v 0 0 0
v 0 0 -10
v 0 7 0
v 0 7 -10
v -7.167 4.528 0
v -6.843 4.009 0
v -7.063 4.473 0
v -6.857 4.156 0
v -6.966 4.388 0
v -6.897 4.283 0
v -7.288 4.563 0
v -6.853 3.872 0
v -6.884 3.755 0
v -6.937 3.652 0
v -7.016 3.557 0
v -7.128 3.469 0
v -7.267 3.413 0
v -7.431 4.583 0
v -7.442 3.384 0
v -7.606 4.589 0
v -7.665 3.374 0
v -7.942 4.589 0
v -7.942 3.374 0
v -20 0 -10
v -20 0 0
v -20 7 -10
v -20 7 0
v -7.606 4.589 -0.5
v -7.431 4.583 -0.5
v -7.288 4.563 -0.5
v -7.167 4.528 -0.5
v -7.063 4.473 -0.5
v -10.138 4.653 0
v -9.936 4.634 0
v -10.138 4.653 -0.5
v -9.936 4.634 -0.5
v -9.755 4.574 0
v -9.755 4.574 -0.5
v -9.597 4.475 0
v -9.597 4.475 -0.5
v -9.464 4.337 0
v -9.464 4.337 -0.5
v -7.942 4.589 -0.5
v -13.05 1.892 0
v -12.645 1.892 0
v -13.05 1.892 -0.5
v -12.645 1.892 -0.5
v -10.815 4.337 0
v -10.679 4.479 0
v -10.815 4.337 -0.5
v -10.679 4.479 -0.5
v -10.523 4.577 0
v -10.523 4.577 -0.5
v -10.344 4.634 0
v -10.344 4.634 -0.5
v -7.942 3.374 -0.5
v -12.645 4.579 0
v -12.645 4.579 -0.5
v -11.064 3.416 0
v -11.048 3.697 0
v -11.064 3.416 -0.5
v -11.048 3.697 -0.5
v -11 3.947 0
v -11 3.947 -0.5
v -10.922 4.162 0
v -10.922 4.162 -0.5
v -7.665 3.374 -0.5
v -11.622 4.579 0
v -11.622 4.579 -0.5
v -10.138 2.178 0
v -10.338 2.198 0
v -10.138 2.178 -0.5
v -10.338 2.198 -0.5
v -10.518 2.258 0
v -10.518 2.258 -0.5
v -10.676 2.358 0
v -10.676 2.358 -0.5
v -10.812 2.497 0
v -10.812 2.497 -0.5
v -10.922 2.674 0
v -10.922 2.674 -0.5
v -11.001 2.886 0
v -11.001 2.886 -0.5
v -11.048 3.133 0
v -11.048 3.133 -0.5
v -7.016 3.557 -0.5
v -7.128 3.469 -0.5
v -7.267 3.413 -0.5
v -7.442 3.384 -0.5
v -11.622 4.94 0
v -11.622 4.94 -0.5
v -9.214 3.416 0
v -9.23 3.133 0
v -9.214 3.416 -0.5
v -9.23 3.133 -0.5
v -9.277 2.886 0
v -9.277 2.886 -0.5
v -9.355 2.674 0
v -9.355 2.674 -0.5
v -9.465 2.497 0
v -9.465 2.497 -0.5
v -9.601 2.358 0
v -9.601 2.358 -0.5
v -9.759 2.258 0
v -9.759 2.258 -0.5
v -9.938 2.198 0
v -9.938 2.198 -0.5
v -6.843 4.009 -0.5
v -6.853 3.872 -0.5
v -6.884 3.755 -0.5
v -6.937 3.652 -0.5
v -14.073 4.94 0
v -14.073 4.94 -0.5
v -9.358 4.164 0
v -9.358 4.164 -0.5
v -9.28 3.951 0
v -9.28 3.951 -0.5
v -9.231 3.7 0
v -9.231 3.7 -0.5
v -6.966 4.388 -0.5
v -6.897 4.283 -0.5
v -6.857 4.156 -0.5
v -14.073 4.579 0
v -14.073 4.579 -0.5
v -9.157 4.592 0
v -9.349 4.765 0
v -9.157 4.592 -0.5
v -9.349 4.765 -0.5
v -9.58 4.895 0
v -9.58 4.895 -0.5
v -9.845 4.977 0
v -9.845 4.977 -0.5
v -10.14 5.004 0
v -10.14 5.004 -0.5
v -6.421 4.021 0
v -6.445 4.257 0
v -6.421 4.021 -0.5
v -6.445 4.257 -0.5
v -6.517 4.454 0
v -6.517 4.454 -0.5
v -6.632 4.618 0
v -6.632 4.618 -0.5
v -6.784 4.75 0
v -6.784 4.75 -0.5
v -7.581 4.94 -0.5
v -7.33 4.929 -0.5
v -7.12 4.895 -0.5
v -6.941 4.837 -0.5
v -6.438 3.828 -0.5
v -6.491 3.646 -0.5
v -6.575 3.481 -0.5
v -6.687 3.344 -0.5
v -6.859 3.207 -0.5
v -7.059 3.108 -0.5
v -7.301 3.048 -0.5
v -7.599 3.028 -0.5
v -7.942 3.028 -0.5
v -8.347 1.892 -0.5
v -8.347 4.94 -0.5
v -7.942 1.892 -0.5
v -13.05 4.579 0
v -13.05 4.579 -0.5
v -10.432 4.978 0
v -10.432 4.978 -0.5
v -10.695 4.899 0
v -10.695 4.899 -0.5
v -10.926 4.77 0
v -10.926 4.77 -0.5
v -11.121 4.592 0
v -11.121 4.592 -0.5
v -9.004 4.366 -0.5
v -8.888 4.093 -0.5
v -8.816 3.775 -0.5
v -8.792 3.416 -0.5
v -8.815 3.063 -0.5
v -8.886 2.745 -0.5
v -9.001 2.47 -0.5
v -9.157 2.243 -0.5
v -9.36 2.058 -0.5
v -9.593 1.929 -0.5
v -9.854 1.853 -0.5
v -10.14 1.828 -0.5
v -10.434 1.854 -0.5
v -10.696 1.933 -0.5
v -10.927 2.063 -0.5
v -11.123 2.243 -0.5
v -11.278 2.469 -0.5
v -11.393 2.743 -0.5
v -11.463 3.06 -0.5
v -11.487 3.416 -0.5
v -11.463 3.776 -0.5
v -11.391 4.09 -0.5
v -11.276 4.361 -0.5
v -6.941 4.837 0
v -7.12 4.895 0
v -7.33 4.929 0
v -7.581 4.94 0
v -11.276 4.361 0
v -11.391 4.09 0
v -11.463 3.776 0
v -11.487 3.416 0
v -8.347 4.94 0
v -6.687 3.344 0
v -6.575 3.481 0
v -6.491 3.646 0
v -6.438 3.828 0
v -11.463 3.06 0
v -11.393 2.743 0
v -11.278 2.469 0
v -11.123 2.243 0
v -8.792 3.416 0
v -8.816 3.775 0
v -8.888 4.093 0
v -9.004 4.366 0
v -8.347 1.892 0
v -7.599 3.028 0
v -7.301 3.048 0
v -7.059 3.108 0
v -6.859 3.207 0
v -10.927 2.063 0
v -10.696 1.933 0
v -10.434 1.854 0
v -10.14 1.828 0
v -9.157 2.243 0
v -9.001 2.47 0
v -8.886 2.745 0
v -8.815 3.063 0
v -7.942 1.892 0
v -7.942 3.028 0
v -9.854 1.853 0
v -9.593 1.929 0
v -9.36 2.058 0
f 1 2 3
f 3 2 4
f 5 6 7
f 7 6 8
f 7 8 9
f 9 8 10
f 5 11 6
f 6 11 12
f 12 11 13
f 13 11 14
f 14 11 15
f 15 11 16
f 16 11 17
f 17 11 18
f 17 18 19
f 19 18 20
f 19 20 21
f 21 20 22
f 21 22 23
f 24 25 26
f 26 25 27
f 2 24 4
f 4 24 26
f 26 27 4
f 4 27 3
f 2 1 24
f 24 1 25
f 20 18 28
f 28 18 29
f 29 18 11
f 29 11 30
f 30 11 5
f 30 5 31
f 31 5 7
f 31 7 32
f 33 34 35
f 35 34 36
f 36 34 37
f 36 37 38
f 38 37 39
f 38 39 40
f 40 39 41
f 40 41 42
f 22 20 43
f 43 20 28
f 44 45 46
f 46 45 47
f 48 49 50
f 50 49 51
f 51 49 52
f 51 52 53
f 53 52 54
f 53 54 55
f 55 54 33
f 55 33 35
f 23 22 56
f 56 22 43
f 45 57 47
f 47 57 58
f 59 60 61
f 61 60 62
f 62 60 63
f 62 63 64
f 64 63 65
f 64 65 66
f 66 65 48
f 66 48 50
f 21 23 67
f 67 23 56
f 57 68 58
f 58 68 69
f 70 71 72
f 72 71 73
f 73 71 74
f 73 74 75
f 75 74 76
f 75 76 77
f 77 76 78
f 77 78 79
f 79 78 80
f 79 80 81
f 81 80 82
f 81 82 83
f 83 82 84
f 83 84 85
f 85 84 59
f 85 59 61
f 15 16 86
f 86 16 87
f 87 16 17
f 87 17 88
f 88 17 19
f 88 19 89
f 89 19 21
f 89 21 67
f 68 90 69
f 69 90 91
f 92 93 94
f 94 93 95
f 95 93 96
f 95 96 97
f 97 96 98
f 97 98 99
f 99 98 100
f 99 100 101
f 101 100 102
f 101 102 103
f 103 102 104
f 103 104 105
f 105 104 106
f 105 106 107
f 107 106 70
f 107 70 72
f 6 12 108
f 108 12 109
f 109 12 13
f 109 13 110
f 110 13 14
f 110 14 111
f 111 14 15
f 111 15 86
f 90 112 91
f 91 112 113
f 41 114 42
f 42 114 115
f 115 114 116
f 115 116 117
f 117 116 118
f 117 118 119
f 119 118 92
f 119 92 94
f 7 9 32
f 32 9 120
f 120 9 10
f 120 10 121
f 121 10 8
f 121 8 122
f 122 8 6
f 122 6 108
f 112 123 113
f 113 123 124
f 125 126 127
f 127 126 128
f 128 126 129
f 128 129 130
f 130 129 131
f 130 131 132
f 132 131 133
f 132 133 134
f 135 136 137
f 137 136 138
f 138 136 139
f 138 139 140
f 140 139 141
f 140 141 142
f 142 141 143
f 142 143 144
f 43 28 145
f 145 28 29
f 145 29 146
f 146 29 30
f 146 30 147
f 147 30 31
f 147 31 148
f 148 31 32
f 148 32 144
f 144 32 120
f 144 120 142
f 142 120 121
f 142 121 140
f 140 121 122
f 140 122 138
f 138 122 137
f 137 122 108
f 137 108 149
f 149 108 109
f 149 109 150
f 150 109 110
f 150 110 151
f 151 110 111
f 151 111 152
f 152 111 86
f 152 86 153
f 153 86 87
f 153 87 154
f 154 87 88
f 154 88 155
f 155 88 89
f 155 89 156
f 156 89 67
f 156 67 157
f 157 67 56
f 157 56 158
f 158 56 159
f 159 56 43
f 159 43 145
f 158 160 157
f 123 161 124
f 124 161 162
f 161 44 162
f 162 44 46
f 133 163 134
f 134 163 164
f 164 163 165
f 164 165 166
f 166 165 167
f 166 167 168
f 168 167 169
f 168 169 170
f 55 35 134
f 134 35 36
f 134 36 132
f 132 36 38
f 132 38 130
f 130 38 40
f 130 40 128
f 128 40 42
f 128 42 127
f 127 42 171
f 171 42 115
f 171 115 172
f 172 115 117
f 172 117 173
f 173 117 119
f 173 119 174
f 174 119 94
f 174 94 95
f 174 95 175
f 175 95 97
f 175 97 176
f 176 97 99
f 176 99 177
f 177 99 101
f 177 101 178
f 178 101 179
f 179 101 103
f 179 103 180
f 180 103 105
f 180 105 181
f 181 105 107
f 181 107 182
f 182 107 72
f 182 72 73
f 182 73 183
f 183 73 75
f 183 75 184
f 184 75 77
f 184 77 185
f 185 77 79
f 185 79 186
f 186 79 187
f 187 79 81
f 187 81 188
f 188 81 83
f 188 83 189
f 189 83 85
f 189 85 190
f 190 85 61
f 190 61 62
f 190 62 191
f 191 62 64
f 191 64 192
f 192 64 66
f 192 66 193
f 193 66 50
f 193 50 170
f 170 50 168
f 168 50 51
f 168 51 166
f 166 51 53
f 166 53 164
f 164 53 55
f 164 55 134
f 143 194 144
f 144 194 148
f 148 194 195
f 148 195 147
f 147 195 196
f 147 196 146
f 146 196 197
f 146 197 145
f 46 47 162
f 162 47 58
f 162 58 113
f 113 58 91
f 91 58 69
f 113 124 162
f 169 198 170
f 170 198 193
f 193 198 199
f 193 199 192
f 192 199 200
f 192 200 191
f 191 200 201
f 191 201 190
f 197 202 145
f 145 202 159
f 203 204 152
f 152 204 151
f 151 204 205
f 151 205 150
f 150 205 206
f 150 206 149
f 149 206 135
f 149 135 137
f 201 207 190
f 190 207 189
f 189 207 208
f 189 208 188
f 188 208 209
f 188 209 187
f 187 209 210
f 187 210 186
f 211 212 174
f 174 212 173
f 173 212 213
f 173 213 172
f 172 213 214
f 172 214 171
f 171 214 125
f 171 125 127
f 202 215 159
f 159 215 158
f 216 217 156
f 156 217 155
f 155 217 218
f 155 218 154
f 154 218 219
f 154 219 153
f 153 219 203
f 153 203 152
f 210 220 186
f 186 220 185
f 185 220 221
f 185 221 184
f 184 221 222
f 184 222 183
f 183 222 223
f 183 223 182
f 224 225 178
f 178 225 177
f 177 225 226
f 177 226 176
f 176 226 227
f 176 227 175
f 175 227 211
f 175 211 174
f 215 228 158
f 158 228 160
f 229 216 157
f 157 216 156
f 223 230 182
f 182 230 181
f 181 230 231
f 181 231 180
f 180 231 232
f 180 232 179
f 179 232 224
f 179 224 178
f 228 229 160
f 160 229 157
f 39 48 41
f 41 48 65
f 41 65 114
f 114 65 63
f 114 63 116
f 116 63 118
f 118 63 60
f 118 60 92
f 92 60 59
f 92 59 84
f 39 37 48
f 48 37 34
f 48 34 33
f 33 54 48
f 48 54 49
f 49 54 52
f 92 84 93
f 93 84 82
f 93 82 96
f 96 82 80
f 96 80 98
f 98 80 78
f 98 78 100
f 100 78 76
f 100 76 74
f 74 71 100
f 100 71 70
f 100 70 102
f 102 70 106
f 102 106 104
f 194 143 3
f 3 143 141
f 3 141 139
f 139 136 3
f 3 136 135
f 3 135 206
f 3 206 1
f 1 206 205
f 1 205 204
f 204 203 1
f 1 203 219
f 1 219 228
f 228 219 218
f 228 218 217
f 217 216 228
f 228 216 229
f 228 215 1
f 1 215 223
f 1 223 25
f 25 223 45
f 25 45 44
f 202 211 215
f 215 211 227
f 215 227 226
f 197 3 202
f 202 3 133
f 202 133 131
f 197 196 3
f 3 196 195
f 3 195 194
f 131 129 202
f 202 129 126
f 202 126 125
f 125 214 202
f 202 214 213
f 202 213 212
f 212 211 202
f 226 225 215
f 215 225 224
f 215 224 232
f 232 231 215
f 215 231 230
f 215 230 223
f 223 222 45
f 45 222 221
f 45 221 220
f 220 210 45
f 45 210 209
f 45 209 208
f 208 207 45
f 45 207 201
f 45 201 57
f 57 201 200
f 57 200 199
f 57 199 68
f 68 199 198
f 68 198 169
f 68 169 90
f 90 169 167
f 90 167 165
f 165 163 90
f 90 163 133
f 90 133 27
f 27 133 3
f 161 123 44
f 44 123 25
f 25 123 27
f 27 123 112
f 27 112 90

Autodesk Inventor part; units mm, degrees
ref_plane "YZ Plane" through (0, 0, 0) normal (1, 0, 0) x (0, 1, 0)
ref_plane "XZ Plane" through (0, 0, 0) normal (0, 1, 0) x (-1, 0, 0)
ref_plane "XY Plane" through (0, 0, 0) normal (0, 0, 1) x (1, 0, 0)
sketch "Sketch1" plane through (0, 0, 0) normal (0, 1, 0) x (-1, 0, 0)
  line L0 (0, 0) -> (20, 0)
  line L1 (20, 0) -> (20, -10)
  line L2 (20, -10) -> (0, -10)
  line L3 (0, -10) -> (0, 0)
  dimension "d0" = 20
  dimension "d1" = 10
extrude "Extrusion1" add sketch "Sketch1" along normal blind 7
sketch "Sketch2" plane through (-20, 0, 0) normal (0, 0, 1) x (1, 0, 0)
  line L0 (5.9298, 5.0041) -> (16.3941, 5.0041) construction
  line L1 (16.3941, 5.0041) -> (16.3941, 1.9722) construction
  line L2 (16.3941, 1.9722) -> (5.9298, 1.9722) construction
  line L3 (5.9298, 1.9722) -> (5.9298, 5.0041) construction
  line L4 (6.9499, 1.8918) -> (6.9499, 4.5792)
  line L5 (6.9499, 4.5792) -> (5.9273, 4.5792)
  line L6 (5.9273, 4.5792) -> (5.9273, 4.9398)
  line L7 (5.9273, 4.9398) -> (8.3776, 4.9398)
  line L8 (8.3776, 4.9398) -> (8.3776, 4.5792)
  line L9 (8.3776, 4.5792) -> (7.355, 4.5792)
  line L10 (7.355, 4.5792) -> (7.355, 1.8918)
  line L11 (7.355, 1.8918) -> (6.9499, 1.8918)
  spline S0 degree 2 poles (10.8426, 4.5916) (11.0155, 4.389) (11.2082, 3.7962) (11.2082, 3.4158) knots 0 0 0 1 2 2 2
  spline S1 degree 2 poles (11.2082, 3.4158) (11.2082, 3.0453) (11.0205, 2.4451) (10.8426, 2.2426) knots 0 0 0 1 2 2 2
  spline S2 degree 2 poles (10.8426, 2.2426) (10.6549, 2.0302) (10.1584, 1.8276) (9.8596, 1.8276) knots 0 0 0 1 2 2 2
  spline S3 degree 2 poles (9.8596, 1.8276) (9.5508, 1.8276) (9.0568, 2.0376) (8.8765, 2.2426) knots 0 0 0 1 2 2 2
  spline S4 degree 2 poles (8.8765, 2.2426) (8.7011, 2.4451) (8.5134, 3.0404) (8.5134, 3.4158) knots 0 0 0 1 2 2 2
  spline S5 degree 2 poles (8.5134, 3.4158) (8.5134, 3.7987) (8.7036, 4.3816) (8.879, 4.5916) knots 0 0 0 1 2 2 2
  spline S6 degree 2 poles (8.879, 4.5916) (9.0568, 4.7941) (9.5533, 5.0041) (9.8596, 5.0041) knots 0 0 0 1 2 2 2
  spline S7 degree 2 poles (9.8596, 5.0041) (10.1708, 5.0041) (10.6697, 4.7867) (10.8426, 4.5916) knots 0 0 0 1 2 2 2
  spline S8 degree 2 poles (10.7858, 3.4158) (10.7858, 3.7172) (10.6549, 4.184) (10.5364, 4.3371) knots 0 0 0 1 2 2 2
  spline S9 degree 2 poles (10.5364, 4.3371) (10.4153, 4.4952) (10.0745, 4.6533) (9.862, 4.6533) knots 0 0 0 1 2 2 2
  spline S10 degree 2 poles (9.862, 4.6533) (9.6422, 4.6533) (9.3112, 4.5002) (9.1853, 4.3371) knots 0 0 0 1 2 2 2
  spline S11 degree 2 poles (9.1853, 4.3371) (9.0642, 4.1815) (8.9358, 3.7122) (8.9358, 3.4158) knots 0 0 0 1 2 2 2
  spline S12 degree 2 poles (8.9358, 3.4158) (8.9358, 2.8156) (9.4397, 2.1784) (9.862, 2.1784) knots 0 0 0 1 2 2 2
  spline S13 degree 2 poles (9.862, 2.1784) (10.2844, 2.1784) (10.7858, 2.8156) (10.7858, 3.4158) knots 0 0 0 1 2 2 2
  spline S14 degree 2 poles (13.5794, 4.021) (13.5794, 3.8234) (13.4386, 3.4677) (13.3127, 3.3442) knots 0 0 0 1 2 2 2
  spline S15 degree 2 poles (13.3127, 3.3442) (13.1546, 3.1886) (12.7273, 3.028) (12.4012, 3.028) knots 0 0 0 1 2 2 2
  line L12 (12.4012, 3.028) -> (12.0579, 3.028)
  line L13 (12.0579, 3.028) -> (12.0579, 1.8918)
  line L14 (12.0579, 1.8918) -> (11.6528, 1.8918)
  line L15 (11.6528, 1.8918) -> (11.6528, 4.9398)
  line L16 (11.6528, 4.9398) -> (12.4185, 4.9398)
  spline S16 degree 2 poles (12.4185, 4.9398) (12.6902, 4.9398) (13.0706, 4.8509) (13.2163, 4.7496) knots 0 0 0 1 2 2 2
  spline S17 degree 2 poles (13.2163, 4.7496) (13.3868, 4.6336) (13.5794, 4.2754) (13.5794, 4.021) knots 0 0 0 1 2 2 2
  spline S18 degree 2 poles (13.157, 4.0086) (13.157, 4.1667) (13.0484, 4.3989) (12.9372, 4.473) knots 0 0 0 1 2 2 2
  spline S19 degree 2 poles (12.9372, 4.473) (12.8409, 4.5372) (12.584, 4.5891) (12.3938, 4.5891) knots 0 0 0 1 2 2 2
  line L17 (12.3938, 4.5891) -> (12.0579, 4.5891)
  line L18 (12.0579, 4.5891) -> (12.0579, 3.3738)
  line L19 (12.0579, 3.3738) -> (12.3345, 3.3738)
  spline S20 degree 2 poles (12.3345, 3.3738) (12.5815, 3.3738) (12.8853, 3.4529) (12.9841, 3.5566) knots 0 0 0 1 2 2 2
  spline S21 degree 2 poles (12.9841, 3.5566) (13.0755, 3.648) (13.157, 3.8629) (13.157, 4.0086) knots 0 0 0 1 2 2 2
  point P0 (20, 0)
extrude "Extrusion3" cut sketch "Sketch2" against normal blind 0.5
properties part number "cable_jig_sevenmm_shim"
